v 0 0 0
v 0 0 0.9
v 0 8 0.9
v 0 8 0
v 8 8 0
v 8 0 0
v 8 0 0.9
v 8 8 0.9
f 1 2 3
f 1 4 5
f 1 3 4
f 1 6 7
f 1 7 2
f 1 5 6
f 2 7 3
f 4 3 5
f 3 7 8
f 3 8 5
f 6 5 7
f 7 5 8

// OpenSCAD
/* Warning, this is a very basic generator with a lot of approximation 
input data : [VQFN, Q2A, 8x8x0.9mm, 64, , A, C04-01126A]
generated by com.zoubworld.electronics.cad.model3d.Basic
Date : Sun Feb 15 10:50:49 CET 2026
*/

//body
color("black")
translate([0,0,0])
cube([8.0,8.0,0.9], center=false);
